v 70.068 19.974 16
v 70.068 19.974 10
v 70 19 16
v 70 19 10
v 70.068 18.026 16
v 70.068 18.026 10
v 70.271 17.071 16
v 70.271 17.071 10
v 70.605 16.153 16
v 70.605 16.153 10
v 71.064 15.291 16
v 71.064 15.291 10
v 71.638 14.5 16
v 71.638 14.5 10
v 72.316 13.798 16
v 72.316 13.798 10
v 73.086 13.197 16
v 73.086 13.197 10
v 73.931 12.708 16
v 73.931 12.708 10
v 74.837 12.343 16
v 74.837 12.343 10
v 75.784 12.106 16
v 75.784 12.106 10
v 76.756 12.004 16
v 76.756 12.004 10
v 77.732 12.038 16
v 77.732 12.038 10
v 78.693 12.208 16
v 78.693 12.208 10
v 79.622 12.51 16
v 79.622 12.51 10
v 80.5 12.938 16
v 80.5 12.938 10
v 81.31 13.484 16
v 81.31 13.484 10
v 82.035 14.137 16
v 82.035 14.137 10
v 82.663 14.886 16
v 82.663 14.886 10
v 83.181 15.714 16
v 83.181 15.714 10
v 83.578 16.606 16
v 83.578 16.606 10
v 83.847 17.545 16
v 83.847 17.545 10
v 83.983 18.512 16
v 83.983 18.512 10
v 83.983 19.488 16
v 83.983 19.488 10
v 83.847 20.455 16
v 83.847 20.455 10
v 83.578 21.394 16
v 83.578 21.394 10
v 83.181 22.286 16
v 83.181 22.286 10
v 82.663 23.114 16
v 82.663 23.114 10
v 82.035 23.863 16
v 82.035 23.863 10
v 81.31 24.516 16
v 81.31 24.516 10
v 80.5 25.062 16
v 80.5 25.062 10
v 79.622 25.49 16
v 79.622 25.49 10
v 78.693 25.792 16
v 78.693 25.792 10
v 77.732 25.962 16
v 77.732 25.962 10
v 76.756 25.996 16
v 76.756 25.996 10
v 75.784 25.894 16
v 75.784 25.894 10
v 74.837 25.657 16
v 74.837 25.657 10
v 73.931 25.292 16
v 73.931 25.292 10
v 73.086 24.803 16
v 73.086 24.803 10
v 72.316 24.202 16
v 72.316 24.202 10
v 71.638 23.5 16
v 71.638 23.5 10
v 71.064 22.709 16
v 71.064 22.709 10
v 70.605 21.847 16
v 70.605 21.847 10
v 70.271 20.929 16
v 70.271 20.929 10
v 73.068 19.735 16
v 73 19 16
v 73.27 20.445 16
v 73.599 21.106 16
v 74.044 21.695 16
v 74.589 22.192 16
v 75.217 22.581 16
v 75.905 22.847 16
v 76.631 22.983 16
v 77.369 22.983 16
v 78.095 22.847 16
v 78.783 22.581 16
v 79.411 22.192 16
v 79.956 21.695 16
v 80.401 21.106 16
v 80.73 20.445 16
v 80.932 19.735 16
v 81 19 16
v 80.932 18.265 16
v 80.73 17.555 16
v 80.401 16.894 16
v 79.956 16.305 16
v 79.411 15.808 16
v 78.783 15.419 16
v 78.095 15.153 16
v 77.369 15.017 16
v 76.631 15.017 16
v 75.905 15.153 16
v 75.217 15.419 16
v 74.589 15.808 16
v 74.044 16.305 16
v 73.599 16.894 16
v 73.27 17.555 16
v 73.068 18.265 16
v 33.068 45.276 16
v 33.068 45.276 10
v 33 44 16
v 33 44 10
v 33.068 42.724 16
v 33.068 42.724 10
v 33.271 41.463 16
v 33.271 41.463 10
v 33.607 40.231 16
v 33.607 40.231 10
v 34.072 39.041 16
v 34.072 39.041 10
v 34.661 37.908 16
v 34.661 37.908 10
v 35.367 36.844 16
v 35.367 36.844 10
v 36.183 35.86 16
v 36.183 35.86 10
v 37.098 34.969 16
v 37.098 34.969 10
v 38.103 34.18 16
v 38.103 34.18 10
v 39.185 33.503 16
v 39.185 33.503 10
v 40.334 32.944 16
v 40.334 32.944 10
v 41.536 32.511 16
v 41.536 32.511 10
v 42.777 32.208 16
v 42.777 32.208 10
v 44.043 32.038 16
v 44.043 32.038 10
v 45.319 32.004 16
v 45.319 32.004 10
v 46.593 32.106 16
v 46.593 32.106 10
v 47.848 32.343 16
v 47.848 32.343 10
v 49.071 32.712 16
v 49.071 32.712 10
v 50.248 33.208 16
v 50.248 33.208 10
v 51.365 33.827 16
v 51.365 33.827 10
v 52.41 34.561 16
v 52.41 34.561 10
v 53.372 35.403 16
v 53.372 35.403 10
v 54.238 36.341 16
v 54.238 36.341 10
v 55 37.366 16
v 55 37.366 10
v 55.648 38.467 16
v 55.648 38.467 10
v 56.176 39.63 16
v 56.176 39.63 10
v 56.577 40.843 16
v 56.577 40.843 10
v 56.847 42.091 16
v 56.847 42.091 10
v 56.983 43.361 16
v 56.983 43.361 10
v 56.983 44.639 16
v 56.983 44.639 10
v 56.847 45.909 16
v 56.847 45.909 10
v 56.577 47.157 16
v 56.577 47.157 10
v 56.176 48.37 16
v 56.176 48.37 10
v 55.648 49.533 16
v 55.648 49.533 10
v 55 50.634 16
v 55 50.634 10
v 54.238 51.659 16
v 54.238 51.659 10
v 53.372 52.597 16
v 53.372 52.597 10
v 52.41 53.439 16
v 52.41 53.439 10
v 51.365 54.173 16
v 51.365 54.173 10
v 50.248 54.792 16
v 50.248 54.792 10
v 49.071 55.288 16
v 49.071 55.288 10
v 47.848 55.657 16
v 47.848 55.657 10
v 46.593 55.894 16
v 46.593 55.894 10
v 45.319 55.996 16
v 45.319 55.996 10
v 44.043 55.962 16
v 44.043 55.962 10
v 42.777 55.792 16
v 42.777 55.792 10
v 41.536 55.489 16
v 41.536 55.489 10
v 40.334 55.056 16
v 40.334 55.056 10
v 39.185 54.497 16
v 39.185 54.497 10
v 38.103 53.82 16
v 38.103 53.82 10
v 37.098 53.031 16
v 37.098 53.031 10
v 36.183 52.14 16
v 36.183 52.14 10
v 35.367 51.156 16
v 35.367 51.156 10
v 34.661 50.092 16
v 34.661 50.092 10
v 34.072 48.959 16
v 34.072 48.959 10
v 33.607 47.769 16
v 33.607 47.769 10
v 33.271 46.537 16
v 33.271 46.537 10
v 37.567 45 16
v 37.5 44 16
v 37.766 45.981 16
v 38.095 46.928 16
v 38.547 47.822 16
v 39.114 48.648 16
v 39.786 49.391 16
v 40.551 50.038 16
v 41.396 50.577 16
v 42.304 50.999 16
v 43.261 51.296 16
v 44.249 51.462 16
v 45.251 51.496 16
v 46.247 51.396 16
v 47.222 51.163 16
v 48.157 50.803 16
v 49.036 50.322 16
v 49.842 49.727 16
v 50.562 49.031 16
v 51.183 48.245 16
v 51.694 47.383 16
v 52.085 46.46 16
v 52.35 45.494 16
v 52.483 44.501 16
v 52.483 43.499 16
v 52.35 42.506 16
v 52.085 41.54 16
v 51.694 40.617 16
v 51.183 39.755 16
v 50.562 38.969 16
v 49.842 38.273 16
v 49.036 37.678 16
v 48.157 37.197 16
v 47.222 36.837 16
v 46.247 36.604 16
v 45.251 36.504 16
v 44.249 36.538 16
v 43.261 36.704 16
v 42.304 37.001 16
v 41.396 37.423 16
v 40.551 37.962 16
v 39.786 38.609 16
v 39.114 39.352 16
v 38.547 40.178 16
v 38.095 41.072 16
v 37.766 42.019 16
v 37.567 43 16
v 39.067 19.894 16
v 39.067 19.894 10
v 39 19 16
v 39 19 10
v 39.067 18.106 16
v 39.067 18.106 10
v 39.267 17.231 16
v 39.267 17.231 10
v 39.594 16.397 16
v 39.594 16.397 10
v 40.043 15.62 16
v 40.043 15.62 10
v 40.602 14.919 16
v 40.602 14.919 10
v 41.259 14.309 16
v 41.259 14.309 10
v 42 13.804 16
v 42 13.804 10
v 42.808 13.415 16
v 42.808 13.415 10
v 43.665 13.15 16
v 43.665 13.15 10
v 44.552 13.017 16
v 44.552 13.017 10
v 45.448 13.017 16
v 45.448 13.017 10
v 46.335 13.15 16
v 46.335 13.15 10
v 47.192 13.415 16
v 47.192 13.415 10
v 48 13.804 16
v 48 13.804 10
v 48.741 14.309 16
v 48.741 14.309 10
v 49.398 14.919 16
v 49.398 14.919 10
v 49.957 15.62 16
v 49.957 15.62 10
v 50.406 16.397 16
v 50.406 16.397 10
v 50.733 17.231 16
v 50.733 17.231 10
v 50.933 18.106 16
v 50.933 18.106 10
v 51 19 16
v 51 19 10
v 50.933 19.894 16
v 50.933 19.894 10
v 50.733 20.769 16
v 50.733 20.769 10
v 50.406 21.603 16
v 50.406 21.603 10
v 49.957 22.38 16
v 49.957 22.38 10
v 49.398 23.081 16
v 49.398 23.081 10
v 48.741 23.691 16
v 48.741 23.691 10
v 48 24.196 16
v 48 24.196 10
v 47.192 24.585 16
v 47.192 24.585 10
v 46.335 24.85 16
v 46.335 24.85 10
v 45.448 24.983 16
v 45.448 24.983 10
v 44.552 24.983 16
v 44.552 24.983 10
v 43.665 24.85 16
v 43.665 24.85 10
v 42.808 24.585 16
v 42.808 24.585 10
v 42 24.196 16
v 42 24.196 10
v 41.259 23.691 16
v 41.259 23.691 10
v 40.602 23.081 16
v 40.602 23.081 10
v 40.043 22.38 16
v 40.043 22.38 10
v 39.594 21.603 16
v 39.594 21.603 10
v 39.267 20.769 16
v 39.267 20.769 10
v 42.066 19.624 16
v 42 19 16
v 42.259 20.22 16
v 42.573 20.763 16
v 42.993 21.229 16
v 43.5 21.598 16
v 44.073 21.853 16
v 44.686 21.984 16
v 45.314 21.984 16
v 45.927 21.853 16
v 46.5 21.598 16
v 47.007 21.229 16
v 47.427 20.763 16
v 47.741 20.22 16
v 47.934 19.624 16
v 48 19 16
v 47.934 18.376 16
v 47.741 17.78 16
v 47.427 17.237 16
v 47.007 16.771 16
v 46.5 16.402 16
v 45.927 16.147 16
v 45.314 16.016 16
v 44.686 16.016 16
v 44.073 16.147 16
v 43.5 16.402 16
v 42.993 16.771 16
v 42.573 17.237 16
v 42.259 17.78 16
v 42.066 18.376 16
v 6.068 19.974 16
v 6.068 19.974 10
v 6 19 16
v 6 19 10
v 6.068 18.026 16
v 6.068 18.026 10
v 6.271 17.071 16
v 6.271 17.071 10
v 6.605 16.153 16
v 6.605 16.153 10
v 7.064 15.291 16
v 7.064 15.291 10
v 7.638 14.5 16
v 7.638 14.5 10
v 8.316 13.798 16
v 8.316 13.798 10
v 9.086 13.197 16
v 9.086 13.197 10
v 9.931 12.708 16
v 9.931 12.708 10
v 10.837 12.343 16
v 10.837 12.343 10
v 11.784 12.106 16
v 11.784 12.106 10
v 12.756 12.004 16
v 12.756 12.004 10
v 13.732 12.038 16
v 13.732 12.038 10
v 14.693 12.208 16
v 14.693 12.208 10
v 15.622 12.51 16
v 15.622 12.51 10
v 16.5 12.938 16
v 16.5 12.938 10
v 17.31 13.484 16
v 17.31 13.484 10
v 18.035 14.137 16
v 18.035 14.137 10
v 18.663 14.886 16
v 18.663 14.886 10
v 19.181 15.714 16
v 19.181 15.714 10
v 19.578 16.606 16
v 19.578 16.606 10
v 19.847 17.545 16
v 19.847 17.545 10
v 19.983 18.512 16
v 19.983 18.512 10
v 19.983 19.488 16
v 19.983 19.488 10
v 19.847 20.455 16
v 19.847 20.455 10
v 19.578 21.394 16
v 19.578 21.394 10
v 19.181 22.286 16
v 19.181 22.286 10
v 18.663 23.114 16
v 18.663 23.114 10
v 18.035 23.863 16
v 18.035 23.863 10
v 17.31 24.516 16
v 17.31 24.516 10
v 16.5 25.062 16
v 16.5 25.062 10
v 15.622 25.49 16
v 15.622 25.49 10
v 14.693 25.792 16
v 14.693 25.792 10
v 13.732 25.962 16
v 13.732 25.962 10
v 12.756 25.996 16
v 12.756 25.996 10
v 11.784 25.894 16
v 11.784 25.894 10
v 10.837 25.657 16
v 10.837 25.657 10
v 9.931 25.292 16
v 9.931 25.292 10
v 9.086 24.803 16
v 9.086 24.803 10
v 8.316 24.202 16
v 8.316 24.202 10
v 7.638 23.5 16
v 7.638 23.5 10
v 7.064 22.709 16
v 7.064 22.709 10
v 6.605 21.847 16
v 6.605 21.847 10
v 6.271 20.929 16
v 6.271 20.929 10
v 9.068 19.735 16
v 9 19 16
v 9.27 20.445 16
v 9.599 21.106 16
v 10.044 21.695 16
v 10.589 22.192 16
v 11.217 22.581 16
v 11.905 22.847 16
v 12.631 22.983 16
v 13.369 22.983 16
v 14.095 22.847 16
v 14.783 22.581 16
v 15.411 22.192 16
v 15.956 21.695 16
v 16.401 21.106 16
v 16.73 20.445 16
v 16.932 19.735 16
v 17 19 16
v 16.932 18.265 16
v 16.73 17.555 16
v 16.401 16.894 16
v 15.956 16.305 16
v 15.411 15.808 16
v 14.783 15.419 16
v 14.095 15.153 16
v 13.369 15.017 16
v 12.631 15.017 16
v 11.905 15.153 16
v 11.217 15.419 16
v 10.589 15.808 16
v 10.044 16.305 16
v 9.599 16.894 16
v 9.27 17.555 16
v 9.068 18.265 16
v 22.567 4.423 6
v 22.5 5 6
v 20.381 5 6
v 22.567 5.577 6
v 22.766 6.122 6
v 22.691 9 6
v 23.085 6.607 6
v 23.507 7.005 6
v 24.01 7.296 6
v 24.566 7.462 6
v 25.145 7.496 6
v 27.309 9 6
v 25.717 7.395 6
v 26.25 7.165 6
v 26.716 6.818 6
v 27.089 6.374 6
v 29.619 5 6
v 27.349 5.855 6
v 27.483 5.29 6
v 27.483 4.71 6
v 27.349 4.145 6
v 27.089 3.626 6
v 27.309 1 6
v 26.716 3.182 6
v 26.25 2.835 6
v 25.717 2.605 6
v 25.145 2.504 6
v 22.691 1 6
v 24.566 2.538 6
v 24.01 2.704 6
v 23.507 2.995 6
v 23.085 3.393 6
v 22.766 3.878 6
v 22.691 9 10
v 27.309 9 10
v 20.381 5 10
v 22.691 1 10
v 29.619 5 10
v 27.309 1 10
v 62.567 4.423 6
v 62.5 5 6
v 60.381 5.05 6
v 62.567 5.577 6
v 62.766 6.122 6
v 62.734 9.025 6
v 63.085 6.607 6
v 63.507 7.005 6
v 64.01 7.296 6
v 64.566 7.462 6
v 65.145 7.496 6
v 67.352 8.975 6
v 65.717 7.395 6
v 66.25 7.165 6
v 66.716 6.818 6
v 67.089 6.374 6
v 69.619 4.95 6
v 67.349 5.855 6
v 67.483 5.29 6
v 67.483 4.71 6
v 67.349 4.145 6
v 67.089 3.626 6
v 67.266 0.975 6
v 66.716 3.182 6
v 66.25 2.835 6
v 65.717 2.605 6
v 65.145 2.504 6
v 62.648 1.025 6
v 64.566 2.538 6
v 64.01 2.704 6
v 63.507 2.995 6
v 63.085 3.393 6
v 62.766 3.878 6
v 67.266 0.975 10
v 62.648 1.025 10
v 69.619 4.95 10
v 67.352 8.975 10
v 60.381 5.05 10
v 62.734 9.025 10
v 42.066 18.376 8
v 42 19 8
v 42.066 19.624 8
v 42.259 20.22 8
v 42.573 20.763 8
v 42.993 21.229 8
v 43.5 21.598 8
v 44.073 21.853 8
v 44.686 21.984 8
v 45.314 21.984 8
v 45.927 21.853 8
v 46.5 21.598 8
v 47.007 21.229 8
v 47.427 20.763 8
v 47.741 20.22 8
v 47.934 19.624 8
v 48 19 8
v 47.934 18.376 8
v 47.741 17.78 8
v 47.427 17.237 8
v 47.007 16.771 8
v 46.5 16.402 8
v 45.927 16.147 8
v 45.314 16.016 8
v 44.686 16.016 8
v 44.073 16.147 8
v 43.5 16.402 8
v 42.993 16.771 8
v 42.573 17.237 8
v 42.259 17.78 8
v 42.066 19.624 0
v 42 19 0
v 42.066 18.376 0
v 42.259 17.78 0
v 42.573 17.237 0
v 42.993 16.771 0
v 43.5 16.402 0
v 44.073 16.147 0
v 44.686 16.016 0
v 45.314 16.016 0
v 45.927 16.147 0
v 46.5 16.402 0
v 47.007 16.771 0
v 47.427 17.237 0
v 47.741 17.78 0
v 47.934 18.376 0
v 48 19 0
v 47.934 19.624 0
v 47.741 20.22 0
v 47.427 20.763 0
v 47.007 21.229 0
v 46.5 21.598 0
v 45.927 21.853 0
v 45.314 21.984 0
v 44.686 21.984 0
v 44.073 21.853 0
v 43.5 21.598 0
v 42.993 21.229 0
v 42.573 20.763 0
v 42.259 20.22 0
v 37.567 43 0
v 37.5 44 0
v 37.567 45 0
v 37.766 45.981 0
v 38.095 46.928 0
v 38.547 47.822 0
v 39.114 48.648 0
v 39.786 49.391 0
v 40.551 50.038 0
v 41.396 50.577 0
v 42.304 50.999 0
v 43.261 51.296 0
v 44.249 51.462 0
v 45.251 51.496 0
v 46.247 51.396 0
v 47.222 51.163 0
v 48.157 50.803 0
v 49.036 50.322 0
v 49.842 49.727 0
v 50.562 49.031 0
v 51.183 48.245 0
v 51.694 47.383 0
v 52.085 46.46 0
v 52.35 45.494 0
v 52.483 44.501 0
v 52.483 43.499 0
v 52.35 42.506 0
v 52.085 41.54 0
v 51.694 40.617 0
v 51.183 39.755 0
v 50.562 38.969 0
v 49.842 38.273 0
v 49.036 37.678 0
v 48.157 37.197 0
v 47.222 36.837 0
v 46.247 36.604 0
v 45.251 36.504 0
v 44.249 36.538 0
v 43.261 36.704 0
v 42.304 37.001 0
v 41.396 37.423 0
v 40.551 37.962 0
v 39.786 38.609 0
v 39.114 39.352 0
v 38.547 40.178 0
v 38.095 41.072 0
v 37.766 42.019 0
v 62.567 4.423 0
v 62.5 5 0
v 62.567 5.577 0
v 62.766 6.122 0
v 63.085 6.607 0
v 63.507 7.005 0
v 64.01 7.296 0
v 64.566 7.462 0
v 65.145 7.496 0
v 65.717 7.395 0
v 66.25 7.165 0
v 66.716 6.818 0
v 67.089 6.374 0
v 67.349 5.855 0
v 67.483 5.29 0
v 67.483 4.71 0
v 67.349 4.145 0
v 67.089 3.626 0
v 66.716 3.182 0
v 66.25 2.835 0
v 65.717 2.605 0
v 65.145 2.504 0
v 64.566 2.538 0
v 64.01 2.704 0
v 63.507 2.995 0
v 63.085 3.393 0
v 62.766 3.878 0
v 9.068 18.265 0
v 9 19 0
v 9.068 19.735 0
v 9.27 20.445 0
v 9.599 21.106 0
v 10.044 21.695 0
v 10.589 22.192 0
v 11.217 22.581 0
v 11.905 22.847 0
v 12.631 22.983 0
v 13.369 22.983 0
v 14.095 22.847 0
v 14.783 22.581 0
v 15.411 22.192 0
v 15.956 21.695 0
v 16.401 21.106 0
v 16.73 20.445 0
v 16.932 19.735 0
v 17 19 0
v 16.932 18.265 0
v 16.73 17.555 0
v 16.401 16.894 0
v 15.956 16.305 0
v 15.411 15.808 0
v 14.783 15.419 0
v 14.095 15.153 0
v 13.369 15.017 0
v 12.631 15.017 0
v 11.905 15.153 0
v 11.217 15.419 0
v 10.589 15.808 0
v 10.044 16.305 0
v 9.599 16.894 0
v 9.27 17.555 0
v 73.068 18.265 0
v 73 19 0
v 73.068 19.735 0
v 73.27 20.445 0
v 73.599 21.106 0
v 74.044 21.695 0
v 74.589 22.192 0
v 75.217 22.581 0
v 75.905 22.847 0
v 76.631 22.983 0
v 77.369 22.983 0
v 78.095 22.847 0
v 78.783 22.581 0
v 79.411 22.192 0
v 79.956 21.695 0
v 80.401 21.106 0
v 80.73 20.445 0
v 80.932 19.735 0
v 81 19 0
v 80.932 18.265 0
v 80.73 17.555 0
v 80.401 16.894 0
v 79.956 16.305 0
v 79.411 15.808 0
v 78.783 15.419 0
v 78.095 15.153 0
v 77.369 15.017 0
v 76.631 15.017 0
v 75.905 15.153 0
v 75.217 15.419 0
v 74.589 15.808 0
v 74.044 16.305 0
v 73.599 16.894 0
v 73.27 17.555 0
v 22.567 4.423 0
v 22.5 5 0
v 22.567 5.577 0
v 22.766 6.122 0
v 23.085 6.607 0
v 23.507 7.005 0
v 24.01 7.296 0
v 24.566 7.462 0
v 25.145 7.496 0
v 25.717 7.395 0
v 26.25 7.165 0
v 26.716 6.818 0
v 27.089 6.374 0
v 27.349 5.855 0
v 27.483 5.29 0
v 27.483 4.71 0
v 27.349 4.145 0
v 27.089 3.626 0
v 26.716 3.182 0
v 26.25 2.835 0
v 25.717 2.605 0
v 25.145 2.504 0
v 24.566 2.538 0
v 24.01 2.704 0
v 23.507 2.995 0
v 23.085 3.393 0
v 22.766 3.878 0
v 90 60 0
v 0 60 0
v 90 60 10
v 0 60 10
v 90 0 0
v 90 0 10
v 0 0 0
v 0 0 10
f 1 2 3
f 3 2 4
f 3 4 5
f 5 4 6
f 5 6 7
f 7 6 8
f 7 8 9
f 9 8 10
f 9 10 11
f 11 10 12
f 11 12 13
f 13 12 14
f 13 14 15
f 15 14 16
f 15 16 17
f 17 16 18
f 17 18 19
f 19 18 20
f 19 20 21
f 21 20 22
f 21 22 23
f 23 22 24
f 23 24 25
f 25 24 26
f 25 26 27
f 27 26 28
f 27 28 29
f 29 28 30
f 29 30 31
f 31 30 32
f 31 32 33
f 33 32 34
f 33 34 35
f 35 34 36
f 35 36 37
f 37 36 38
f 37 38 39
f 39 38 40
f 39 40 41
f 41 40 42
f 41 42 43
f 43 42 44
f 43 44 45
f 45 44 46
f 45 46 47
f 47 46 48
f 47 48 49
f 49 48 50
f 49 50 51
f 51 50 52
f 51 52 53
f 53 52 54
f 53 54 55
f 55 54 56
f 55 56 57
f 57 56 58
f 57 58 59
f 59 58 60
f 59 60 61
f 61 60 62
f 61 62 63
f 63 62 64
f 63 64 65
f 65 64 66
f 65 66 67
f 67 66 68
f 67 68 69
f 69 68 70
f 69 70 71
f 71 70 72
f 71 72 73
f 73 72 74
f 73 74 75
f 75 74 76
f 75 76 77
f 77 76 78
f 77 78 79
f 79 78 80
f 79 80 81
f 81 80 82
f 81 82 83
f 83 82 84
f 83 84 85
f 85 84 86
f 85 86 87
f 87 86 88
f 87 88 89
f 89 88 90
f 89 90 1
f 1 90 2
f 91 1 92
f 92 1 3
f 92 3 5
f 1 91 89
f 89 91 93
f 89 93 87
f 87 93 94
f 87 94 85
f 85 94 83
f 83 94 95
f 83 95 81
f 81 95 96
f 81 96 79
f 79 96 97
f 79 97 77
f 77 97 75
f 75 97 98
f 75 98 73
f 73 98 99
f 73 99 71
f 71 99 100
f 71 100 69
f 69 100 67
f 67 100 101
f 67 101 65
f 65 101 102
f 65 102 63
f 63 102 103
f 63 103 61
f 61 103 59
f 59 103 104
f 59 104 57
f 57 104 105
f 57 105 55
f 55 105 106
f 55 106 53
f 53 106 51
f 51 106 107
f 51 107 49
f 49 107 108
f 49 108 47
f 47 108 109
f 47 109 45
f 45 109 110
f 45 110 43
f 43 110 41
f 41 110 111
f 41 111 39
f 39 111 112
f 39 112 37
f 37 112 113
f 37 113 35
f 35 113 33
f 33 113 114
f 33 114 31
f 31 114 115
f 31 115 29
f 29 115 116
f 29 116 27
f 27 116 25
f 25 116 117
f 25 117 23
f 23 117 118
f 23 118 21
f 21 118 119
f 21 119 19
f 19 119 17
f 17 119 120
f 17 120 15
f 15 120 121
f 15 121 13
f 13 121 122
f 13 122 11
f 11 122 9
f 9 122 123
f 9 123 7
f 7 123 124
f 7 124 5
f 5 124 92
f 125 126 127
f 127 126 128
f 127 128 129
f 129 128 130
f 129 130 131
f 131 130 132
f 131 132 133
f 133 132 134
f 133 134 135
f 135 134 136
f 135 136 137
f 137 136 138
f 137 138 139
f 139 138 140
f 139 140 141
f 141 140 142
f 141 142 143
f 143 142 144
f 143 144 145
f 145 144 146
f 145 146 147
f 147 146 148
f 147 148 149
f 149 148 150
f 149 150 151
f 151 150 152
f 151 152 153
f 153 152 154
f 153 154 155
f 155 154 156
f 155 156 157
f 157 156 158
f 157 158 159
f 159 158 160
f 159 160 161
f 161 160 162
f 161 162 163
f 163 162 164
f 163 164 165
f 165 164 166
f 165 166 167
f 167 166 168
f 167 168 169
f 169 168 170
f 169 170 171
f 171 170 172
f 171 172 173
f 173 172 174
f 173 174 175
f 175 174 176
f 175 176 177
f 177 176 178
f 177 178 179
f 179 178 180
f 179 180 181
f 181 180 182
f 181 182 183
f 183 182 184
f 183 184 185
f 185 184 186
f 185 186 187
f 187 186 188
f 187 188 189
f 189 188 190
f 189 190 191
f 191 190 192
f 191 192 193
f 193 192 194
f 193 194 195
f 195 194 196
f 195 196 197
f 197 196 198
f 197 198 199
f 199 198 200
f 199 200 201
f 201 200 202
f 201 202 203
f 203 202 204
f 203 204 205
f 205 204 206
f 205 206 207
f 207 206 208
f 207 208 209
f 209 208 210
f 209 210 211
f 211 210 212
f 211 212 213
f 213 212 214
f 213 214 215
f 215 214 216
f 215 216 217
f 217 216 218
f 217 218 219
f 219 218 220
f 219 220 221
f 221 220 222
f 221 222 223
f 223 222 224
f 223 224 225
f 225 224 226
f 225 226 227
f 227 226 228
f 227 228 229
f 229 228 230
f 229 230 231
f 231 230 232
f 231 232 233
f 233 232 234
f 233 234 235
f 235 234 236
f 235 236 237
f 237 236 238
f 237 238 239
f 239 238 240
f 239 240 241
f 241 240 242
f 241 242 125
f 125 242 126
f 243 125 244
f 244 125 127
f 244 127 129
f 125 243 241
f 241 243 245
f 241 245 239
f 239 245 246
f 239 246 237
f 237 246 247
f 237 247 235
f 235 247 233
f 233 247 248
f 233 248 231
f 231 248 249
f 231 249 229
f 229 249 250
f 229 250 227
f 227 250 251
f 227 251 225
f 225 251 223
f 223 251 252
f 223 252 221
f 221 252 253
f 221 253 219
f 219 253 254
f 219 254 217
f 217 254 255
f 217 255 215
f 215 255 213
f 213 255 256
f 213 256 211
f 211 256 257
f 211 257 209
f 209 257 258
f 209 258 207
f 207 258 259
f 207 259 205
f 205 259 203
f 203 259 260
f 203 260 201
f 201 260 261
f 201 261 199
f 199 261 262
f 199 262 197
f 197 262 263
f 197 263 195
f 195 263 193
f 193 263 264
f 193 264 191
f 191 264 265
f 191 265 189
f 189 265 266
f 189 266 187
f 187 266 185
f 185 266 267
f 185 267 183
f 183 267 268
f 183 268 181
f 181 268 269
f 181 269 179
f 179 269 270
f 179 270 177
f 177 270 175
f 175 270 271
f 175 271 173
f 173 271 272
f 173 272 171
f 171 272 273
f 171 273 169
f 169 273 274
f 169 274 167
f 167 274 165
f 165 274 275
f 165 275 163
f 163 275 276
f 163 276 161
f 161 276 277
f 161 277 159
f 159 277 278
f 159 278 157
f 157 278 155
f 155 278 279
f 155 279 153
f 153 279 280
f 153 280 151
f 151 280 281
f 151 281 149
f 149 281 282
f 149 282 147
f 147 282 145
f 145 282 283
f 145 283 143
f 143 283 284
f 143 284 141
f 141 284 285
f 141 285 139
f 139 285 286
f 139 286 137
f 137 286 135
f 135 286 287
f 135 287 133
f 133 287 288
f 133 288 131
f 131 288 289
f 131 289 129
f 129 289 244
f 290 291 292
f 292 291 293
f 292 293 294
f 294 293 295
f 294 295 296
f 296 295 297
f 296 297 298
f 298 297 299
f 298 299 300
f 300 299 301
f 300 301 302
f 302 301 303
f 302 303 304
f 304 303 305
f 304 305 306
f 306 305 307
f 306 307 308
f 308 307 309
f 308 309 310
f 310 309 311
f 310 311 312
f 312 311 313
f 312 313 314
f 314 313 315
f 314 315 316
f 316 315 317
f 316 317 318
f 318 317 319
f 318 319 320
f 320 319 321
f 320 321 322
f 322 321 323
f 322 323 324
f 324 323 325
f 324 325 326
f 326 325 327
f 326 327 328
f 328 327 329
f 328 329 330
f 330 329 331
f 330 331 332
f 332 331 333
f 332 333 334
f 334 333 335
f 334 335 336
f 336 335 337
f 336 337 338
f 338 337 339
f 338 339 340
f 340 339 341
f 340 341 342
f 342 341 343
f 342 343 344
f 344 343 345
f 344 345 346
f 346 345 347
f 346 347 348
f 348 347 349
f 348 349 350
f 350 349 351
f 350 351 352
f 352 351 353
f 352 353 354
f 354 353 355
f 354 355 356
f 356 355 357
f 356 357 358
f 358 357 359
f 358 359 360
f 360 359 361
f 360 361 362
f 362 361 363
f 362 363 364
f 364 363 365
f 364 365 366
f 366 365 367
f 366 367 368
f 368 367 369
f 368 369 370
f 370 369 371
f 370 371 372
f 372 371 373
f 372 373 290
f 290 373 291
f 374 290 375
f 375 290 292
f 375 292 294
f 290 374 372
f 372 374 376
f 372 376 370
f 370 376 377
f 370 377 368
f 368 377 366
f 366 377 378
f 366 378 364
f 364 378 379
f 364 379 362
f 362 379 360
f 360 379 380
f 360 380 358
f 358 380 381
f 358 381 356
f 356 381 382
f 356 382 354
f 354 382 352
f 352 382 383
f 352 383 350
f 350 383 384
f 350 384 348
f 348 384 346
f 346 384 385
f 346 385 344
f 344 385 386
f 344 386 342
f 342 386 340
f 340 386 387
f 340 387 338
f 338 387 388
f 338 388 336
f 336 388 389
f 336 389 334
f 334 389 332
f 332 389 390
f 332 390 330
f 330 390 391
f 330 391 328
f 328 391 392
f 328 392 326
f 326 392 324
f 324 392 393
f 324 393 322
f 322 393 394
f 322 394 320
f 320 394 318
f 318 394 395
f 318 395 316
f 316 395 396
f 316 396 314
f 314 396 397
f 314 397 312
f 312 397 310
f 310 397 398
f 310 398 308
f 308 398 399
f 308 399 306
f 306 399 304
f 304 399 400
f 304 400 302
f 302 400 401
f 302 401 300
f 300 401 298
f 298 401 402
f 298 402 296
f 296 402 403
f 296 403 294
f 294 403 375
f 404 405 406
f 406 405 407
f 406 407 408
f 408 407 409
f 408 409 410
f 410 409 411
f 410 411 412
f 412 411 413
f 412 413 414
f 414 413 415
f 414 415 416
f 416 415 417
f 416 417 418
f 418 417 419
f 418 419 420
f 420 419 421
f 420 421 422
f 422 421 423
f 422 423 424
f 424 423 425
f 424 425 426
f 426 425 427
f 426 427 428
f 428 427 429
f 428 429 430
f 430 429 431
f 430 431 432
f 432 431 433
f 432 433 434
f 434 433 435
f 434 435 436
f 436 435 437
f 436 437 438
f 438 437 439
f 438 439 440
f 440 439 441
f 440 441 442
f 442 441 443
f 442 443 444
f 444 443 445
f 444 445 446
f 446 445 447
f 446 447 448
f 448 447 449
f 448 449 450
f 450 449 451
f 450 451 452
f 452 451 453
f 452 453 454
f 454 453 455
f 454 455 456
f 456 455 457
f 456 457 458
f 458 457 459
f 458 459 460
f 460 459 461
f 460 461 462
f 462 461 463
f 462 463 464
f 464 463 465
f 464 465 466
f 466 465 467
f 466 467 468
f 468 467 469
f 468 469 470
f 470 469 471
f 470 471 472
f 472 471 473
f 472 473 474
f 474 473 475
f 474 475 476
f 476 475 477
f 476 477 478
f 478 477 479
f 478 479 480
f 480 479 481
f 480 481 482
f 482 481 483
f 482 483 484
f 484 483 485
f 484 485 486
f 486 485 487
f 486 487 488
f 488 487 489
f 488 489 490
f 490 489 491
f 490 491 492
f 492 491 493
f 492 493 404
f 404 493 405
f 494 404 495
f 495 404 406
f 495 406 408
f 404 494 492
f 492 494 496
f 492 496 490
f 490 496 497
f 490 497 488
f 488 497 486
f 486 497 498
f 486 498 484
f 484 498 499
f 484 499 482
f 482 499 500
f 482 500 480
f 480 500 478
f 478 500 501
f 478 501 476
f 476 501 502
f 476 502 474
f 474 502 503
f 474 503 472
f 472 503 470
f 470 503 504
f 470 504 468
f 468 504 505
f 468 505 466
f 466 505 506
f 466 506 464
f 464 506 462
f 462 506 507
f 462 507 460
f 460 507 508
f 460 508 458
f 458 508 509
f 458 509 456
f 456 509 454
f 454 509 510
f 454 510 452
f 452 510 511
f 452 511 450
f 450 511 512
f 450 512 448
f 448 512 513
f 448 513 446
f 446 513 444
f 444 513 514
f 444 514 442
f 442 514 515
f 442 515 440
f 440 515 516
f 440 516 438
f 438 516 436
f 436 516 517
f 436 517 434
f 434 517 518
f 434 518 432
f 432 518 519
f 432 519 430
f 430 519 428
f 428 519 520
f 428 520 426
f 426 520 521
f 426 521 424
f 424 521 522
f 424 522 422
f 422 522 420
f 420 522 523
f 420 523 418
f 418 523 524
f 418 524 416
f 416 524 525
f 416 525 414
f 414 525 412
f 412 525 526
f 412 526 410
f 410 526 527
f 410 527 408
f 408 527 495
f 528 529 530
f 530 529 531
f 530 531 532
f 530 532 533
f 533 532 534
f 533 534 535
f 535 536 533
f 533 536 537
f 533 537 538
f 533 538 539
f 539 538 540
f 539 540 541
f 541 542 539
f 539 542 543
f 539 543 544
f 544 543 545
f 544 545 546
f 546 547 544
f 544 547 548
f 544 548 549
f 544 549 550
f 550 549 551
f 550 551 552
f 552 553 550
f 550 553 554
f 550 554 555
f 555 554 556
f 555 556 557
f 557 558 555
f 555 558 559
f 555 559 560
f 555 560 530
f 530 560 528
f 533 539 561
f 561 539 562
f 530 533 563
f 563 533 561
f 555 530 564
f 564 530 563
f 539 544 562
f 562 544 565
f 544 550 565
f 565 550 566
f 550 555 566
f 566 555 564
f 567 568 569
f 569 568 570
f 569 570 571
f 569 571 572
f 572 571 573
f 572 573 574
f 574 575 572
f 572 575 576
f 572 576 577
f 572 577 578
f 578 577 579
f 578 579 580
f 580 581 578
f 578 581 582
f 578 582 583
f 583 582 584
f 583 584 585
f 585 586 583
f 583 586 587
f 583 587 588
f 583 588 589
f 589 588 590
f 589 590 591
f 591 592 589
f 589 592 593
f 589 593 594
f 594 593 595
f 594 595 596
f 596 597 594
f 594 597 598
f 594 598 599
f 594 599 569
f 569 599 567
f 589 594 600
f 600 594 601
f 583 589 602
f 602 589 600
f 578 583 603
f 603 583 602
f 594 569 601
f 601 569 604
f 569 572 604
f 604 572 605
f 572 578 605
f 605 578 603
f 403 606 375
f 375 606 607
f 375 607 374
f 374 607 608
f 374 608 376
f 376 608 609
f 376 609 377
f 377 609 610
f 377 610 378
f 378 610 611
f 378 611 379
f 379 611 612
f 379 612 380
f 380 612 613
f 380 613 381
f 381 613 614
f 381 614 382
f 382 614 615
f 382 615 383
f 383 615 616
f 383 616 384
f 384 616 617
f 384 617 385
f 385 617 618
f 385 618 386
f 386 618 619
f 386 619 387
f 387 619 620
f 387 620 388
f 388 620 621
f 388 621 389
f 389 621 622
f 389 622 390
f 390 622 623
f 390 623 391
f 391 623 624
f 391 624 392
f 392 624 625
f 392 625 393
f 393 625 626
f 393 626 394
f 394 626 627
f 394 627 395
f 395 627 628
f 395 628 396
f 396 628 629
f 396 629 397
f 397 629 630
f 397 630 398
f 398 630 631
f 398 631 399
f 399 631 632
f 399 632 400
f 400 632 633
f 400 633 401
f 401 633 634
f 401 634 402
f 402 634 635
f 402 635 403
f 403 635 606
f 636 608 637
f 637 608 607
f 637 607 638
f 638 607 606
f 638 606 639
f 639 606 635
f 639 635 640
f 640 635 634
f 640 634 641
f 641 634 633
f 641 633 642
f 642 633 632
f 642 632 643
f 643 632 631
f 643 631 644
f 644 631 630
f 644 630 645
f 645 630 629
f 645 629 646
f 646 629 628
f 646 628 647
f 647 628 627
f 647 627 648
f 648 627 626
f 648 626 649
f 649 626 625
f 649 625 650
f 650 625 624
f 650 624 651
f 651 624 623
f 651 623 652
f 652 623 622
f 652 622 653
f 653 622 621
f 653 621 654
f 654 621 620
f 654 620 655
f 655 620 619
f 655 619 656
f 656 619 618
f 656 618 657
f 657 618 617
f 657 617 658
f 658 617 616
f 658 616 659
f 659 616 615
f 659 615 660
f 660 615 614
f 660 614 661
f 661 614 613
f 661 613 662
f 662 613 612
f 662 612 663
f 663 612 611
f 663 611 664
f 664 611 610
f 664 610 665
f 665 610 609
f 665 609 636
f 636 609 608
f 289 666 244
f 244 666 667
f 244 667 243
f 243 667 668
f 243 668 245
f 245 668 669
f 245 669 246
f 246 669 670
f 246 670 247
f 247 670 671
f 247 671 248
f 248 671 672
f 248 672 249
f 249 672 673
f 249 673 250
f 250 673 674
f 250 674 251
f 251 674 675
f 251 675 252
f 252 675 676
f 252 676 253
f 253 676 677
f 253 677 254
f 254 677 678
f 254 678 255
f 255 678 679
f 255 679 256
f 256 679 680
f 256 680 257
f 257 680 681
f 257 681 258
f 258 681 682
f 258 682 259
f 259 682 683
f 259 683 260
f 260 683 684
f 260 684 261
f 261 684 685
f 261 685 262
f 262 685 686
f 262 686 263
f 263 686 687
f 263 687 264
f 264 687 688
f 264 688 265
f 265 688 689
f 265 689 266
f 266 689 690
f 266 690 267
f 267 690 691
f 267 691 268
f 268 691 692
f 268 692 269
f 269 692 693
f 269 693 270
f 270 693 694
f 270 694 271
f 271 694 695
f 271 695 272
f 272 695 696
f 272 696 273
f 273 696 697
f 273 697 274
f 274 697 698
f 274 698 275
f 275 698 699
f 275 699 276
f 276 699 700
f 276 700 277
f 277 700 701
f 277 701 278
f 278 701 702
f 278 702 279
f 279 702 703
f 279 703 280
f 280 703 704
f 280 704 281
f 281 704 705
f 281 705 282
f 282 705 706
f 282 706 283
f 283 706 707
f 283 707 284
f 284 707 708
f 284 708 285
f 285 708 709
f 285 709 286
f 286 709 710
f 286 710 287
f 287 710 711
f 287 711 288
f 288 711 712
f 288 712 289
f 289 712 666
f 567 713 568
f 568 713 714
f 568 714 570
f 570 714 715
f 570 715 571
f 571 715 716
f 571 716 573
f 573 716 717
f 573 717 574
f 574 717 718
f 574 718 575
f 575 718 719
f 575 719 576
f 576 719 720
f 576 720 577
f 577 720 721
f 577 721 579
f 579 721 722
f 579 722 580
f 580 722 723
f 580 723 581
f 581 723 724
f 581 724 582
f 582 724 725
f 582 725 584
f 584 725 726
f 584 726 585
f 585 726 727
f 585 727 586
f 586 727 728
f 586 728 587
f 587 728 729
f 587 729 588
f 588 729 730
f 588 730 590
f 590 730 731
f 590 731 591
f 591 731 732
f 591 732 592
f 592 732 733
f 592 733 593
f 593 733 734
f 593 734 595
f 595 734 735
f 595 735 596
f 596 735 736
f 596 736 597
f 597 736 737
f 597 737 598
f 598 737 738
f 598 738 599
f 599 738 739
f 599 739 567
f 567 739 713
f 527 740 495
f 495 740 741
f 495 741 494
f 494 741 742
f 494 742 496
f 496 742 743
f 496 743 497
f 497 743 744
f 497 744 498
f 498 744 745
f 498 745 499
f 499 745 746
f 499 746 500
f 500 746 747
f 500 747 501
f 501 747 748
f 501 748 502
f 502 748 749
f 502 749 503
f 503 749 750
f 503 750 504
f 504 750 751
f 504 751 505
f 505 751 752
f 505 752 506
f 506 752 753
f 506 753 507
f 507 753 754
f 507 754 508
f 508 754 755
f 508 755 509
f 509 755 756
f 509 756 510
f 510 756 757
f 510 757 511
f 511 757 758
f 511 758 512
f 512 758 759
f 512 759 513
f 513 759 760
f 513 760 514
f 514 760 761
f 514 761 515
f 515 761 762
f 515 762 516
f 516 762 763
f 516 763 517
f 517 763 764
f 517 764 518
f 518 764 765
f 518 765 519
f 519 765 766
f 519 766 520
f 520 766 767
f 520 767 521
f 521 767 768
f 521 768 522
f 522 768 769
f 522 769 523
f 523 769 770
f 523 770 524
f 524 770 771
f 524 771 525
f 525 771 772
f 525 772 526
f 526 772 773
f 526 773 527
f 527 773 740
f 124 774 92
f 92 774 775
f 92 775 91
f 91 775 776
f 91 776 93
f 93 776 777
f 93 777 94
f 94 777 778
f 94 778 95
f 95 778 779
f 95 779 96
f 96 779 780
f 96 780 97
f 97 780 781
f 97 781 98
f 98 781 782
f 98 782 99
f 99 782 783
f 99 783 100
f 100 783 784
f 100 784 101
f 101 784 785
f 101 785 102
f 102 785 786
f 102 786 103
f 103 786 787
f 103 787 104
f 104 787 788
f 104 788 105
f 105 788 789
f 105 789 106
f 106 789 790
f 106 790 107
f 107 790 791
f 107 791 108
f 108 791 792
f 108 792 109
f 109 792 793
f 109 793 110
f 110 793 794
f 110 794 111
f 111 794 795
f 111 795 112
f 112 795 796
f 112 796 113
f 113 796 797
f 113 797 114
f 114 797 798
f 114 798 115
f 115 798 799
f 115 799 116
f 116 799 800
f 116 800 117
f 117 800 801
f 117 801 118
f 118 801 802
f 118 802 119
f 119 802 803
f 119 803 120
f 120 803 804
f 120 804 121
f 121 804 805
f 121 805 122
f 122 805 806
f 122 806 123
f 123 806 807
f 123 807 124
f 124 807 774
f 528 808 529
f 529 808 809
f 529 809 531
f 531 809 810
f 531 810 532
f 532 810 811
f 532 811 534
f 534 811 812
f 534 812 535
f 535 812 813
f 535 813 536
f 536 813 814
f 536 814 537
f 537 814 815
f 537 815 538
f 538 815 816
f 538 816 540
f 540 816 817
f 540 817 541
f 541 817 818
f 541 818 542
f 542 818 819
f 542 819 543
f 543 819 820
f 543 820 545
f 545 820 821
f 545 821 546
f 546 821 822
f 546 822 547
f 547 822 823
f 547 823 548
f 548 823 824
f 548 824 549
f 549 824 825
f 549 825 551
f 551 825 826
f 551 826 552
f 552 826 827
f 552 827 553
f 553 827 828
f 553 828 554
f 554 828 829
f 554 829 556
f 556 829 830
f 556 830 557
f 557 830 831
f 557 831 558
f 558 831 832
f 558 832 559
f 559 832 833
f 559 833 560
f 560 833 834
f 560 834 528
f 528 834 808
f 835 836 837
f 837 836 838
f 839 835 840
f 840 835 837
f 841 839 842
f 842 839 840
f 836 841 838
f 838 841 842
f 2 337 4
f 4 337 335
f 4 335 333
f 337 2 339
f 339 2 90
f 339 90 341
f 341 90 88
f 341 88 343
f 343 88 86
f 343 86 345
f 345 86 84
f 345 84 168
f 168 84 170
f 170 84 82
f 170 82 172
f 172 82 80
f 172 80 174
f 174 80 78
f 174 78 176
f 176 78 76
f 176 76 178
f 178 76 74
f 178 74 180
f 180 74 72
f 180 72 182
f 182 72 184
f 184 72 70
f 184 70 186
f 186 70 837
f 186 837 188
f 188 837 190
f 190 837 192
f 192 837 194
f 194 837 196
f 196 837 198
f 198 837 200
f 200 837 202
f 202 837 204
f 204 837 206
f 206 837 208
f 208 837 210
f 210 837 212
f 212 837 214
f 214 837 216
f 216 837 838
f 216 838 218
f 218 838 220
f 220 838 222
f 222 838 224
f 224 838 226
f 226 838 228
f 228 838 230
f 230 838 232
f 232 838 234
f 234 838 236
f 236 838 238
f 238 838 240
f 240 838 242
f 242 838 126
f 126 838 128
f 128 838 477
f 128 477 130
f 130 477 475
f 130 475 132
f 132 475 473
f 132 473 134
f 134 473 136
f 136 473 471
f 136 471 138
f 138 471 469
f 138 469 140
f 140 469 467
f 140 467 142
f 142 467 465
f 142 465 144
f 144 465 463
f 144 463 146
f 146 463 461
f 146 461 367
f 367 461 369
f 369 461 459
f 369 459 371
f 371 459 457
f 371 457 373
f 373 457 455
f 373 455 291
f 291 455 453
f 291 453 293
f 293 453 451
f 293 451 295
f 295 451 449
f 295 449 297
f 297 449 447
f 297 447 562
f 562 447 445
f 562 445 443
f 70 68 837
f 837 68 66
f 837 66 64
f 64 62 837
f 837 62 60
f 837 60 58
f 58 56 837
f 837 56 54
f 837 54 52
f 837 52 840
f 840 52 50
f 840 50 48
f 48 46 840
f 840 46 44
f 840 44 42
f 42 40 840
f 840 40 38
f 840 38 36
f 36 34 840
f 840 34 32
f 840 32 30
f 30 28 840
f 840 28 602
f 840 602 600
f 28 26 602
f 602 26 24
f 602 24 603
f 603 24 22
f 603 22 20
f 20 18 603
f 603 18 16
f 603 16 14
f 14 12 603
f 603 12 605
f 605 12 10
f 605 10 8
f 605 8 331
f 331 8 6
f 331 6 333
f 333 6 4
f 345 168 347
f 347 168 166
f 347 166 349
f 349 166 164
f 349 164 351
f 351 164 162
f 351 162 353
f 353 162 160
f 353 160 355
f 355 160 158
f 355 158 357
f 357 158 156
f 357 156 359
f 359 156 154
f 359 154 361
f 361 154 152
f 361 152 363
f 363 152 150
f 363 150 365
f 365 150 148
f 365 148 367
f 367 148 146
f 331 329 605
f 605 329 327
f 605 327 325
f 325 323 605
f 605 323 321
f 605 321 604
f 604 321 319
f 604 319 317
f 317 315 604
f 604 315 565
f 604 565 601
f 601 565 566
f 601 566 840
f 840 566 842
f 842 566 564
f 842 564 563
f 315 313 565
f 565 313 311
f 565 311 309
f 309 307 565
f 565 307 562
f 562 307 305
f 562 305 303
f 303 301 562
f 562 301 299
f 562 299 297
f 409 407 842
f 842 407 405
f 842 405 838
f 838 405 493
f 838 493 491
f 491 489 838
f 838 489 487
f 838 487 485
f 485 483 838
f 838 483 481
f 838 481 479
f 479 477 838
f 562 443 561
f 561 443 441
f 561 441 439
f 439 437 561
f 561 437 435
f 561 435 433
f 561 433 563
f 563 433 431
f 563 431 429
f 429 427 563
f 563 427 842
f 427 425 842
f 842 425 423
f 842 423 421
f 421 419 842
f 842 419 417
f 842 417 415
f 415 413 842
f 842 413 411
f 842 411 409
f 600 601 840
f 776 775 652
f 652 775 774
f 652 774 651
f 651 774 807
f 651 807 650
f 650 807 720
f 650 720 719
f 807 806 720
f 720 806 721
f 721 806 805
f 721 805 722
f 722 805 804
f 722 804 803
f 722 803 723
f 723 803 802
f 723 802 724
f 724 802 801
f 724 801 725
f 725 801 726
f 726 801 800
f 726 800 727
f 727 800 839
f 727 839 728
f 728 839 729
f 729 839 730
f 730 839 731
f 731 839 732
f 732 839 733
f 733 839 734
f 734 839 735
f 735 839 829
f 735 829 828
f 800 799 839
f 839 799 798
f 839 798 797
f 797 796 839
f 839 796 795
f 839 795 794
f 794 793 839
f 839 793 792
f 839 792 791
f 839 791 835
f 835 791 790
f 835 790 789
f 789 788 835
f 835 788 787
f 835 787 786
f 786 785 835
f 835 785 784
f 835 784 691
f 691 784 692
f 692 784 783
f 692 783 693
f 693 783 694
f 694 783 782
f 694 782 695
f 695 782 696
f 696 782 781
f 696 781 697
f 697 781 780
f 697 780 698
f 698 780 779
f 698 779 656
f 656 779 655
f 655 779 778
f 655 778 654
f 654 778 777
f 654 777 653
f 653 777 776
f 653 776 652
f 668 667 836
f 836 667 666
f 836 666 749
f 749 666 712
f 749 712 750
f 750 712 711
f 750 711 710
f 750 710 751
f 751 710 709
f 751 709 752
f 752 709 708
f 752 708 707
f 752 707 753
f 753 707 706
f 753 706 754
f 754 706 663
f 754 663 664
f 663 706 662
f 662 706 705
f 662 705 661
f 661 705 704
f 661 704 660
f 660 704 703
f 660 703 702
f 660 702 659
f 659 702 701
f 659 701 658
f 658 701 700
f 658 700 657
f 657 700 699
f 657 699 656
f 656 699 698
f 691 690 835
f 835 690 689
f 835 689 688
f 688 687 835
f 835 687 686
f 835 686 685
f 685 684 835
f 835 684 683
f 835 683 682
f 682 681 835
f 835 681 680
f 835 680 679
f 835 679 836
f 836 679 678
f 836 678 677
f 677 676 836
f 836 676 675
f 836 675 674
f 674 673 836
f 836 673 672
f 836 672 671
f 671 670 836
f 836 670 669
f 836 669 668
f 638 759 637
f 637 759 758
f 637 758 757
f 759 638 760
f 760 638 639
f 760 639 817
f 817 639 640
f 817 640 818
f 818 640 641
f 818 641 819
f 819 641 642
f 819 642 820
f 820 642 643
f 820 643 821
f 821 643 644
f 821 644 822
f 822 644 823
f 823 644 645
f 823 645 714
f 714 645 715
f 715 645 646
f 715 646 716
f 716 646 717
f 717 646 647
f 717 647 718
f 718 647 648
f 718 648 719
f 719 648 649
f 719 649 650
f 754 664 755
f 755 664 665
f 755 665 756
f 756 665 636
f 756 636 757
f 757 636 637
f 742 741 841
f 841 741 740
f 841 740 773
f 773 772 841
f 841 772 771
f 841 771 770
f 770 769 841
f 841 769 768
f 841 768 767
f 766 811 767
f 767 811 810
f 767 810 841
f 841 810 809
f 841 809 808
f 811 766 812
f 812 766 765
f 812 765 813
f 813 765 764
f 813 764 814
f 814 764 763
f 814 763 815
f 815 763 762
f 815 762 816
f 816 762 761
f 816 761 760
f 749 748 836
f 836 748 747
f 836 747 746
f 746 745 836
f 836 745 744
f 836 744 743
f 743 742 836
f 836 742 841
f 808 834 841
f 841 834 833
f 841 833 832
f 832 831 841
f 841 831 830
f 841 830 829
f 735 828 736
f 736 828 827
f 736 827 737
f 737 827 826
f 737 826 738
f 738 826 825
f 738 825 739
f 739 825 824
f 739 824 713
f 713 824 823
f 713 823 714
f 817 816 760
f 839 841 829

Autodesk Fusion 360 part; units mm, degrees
sketch "Sketch1" plane through (0, 0, 0) normal (0, 0, 1) x (1, 0, 0)
  line L0 (0, 0) -> (90, 0)
  line L1 (90, 0) -> (90, 60)
  line L2 (90, 60) -> (0, 60)
  line L3 (0, 60) -> (0, 0)
  circle A0 centre (45, 19) radius 3
  circle A1 centre (13, 19) radius 4
  circle A2 centre (77, 19) radius 4
  circle A3 centre (45, 44) radius 7.5
  line L4 (22.6906, 1) -> (27.3094, 1)
  line L5 (27.3094, 1) -> (29.6188, 5)
  line L6 (29.6188, 5) -> (27.3094, 9)
  line L7 (27.3094, 9) -> (22.6906, 9)
  line L8 (22.6906, 9) -> (20.3812, 5)
  line L9 (20.3812, 5) -> (22.6906, 1)
  line L10 (67.3524, 8.9748) -> (62.7339, 9.0247)
  line L11 (62.7339, 9.0247) -> (60.3815, 5.0499)
  line L12 (60.3815, 5.0499) -> (62.6476, 1.0252)
  line L13 (62.6476, 1.0252) -> (67.2661, 0.9753)
  line L14 (67.2661, 0.9753) -> (69.6185, 4.9501)
  line L15 (69.6185, 4.9501) -> (67.3524, 8.9748)
  circle A4 centre (25, 5) radius 2.5
  circle A5 centre (65, 5) radius 2.5
  circle A6 centre (45, 44) radius 12
  circle A7 centre (77, 19) radius 7
  circle A8 centre (45, 19) radius 6
  circle A9 centre (13, 19) radius 7
  point P0 (25, 5)
  point P1 (65, 5)
  dimension "d4" = 90
  dimension "d5" = 60
  dimension "d6" = 45
  dimension "d7" = 32
  dimension "d8" = 32
  dimension "d9" = 19
  dimension "d10" = 19
  dimension "d11" = 19
  dimension "d12" = 25
  dimension "d16" = 8
  dimension "d17" = 25
  dimension "d19" = 5
  dimension "d20" = 8
  dimension "d21" = 40
  dimension "d22" = 5
extrude "Extrude1" add sketch "Sketch1" along normal blind 10 contours L0 L1 L2 L3 | L4 L5 L6 L7 L8 L9 | L10 L11 L12 L13 L14 L15 | A6 | A7 | A8 | A9
extrude "Extrude2" cut sketch "Sketch1" along normal blind 10 and the other way blind -6 contours L4 L5 L6 L7 L8 L9 | L10 L11 L12 L13 L14 L15
extrude "Extrude3" add sketch "Sketch1" along normal blind 16 contours A6 | A7 | A8 | A9
